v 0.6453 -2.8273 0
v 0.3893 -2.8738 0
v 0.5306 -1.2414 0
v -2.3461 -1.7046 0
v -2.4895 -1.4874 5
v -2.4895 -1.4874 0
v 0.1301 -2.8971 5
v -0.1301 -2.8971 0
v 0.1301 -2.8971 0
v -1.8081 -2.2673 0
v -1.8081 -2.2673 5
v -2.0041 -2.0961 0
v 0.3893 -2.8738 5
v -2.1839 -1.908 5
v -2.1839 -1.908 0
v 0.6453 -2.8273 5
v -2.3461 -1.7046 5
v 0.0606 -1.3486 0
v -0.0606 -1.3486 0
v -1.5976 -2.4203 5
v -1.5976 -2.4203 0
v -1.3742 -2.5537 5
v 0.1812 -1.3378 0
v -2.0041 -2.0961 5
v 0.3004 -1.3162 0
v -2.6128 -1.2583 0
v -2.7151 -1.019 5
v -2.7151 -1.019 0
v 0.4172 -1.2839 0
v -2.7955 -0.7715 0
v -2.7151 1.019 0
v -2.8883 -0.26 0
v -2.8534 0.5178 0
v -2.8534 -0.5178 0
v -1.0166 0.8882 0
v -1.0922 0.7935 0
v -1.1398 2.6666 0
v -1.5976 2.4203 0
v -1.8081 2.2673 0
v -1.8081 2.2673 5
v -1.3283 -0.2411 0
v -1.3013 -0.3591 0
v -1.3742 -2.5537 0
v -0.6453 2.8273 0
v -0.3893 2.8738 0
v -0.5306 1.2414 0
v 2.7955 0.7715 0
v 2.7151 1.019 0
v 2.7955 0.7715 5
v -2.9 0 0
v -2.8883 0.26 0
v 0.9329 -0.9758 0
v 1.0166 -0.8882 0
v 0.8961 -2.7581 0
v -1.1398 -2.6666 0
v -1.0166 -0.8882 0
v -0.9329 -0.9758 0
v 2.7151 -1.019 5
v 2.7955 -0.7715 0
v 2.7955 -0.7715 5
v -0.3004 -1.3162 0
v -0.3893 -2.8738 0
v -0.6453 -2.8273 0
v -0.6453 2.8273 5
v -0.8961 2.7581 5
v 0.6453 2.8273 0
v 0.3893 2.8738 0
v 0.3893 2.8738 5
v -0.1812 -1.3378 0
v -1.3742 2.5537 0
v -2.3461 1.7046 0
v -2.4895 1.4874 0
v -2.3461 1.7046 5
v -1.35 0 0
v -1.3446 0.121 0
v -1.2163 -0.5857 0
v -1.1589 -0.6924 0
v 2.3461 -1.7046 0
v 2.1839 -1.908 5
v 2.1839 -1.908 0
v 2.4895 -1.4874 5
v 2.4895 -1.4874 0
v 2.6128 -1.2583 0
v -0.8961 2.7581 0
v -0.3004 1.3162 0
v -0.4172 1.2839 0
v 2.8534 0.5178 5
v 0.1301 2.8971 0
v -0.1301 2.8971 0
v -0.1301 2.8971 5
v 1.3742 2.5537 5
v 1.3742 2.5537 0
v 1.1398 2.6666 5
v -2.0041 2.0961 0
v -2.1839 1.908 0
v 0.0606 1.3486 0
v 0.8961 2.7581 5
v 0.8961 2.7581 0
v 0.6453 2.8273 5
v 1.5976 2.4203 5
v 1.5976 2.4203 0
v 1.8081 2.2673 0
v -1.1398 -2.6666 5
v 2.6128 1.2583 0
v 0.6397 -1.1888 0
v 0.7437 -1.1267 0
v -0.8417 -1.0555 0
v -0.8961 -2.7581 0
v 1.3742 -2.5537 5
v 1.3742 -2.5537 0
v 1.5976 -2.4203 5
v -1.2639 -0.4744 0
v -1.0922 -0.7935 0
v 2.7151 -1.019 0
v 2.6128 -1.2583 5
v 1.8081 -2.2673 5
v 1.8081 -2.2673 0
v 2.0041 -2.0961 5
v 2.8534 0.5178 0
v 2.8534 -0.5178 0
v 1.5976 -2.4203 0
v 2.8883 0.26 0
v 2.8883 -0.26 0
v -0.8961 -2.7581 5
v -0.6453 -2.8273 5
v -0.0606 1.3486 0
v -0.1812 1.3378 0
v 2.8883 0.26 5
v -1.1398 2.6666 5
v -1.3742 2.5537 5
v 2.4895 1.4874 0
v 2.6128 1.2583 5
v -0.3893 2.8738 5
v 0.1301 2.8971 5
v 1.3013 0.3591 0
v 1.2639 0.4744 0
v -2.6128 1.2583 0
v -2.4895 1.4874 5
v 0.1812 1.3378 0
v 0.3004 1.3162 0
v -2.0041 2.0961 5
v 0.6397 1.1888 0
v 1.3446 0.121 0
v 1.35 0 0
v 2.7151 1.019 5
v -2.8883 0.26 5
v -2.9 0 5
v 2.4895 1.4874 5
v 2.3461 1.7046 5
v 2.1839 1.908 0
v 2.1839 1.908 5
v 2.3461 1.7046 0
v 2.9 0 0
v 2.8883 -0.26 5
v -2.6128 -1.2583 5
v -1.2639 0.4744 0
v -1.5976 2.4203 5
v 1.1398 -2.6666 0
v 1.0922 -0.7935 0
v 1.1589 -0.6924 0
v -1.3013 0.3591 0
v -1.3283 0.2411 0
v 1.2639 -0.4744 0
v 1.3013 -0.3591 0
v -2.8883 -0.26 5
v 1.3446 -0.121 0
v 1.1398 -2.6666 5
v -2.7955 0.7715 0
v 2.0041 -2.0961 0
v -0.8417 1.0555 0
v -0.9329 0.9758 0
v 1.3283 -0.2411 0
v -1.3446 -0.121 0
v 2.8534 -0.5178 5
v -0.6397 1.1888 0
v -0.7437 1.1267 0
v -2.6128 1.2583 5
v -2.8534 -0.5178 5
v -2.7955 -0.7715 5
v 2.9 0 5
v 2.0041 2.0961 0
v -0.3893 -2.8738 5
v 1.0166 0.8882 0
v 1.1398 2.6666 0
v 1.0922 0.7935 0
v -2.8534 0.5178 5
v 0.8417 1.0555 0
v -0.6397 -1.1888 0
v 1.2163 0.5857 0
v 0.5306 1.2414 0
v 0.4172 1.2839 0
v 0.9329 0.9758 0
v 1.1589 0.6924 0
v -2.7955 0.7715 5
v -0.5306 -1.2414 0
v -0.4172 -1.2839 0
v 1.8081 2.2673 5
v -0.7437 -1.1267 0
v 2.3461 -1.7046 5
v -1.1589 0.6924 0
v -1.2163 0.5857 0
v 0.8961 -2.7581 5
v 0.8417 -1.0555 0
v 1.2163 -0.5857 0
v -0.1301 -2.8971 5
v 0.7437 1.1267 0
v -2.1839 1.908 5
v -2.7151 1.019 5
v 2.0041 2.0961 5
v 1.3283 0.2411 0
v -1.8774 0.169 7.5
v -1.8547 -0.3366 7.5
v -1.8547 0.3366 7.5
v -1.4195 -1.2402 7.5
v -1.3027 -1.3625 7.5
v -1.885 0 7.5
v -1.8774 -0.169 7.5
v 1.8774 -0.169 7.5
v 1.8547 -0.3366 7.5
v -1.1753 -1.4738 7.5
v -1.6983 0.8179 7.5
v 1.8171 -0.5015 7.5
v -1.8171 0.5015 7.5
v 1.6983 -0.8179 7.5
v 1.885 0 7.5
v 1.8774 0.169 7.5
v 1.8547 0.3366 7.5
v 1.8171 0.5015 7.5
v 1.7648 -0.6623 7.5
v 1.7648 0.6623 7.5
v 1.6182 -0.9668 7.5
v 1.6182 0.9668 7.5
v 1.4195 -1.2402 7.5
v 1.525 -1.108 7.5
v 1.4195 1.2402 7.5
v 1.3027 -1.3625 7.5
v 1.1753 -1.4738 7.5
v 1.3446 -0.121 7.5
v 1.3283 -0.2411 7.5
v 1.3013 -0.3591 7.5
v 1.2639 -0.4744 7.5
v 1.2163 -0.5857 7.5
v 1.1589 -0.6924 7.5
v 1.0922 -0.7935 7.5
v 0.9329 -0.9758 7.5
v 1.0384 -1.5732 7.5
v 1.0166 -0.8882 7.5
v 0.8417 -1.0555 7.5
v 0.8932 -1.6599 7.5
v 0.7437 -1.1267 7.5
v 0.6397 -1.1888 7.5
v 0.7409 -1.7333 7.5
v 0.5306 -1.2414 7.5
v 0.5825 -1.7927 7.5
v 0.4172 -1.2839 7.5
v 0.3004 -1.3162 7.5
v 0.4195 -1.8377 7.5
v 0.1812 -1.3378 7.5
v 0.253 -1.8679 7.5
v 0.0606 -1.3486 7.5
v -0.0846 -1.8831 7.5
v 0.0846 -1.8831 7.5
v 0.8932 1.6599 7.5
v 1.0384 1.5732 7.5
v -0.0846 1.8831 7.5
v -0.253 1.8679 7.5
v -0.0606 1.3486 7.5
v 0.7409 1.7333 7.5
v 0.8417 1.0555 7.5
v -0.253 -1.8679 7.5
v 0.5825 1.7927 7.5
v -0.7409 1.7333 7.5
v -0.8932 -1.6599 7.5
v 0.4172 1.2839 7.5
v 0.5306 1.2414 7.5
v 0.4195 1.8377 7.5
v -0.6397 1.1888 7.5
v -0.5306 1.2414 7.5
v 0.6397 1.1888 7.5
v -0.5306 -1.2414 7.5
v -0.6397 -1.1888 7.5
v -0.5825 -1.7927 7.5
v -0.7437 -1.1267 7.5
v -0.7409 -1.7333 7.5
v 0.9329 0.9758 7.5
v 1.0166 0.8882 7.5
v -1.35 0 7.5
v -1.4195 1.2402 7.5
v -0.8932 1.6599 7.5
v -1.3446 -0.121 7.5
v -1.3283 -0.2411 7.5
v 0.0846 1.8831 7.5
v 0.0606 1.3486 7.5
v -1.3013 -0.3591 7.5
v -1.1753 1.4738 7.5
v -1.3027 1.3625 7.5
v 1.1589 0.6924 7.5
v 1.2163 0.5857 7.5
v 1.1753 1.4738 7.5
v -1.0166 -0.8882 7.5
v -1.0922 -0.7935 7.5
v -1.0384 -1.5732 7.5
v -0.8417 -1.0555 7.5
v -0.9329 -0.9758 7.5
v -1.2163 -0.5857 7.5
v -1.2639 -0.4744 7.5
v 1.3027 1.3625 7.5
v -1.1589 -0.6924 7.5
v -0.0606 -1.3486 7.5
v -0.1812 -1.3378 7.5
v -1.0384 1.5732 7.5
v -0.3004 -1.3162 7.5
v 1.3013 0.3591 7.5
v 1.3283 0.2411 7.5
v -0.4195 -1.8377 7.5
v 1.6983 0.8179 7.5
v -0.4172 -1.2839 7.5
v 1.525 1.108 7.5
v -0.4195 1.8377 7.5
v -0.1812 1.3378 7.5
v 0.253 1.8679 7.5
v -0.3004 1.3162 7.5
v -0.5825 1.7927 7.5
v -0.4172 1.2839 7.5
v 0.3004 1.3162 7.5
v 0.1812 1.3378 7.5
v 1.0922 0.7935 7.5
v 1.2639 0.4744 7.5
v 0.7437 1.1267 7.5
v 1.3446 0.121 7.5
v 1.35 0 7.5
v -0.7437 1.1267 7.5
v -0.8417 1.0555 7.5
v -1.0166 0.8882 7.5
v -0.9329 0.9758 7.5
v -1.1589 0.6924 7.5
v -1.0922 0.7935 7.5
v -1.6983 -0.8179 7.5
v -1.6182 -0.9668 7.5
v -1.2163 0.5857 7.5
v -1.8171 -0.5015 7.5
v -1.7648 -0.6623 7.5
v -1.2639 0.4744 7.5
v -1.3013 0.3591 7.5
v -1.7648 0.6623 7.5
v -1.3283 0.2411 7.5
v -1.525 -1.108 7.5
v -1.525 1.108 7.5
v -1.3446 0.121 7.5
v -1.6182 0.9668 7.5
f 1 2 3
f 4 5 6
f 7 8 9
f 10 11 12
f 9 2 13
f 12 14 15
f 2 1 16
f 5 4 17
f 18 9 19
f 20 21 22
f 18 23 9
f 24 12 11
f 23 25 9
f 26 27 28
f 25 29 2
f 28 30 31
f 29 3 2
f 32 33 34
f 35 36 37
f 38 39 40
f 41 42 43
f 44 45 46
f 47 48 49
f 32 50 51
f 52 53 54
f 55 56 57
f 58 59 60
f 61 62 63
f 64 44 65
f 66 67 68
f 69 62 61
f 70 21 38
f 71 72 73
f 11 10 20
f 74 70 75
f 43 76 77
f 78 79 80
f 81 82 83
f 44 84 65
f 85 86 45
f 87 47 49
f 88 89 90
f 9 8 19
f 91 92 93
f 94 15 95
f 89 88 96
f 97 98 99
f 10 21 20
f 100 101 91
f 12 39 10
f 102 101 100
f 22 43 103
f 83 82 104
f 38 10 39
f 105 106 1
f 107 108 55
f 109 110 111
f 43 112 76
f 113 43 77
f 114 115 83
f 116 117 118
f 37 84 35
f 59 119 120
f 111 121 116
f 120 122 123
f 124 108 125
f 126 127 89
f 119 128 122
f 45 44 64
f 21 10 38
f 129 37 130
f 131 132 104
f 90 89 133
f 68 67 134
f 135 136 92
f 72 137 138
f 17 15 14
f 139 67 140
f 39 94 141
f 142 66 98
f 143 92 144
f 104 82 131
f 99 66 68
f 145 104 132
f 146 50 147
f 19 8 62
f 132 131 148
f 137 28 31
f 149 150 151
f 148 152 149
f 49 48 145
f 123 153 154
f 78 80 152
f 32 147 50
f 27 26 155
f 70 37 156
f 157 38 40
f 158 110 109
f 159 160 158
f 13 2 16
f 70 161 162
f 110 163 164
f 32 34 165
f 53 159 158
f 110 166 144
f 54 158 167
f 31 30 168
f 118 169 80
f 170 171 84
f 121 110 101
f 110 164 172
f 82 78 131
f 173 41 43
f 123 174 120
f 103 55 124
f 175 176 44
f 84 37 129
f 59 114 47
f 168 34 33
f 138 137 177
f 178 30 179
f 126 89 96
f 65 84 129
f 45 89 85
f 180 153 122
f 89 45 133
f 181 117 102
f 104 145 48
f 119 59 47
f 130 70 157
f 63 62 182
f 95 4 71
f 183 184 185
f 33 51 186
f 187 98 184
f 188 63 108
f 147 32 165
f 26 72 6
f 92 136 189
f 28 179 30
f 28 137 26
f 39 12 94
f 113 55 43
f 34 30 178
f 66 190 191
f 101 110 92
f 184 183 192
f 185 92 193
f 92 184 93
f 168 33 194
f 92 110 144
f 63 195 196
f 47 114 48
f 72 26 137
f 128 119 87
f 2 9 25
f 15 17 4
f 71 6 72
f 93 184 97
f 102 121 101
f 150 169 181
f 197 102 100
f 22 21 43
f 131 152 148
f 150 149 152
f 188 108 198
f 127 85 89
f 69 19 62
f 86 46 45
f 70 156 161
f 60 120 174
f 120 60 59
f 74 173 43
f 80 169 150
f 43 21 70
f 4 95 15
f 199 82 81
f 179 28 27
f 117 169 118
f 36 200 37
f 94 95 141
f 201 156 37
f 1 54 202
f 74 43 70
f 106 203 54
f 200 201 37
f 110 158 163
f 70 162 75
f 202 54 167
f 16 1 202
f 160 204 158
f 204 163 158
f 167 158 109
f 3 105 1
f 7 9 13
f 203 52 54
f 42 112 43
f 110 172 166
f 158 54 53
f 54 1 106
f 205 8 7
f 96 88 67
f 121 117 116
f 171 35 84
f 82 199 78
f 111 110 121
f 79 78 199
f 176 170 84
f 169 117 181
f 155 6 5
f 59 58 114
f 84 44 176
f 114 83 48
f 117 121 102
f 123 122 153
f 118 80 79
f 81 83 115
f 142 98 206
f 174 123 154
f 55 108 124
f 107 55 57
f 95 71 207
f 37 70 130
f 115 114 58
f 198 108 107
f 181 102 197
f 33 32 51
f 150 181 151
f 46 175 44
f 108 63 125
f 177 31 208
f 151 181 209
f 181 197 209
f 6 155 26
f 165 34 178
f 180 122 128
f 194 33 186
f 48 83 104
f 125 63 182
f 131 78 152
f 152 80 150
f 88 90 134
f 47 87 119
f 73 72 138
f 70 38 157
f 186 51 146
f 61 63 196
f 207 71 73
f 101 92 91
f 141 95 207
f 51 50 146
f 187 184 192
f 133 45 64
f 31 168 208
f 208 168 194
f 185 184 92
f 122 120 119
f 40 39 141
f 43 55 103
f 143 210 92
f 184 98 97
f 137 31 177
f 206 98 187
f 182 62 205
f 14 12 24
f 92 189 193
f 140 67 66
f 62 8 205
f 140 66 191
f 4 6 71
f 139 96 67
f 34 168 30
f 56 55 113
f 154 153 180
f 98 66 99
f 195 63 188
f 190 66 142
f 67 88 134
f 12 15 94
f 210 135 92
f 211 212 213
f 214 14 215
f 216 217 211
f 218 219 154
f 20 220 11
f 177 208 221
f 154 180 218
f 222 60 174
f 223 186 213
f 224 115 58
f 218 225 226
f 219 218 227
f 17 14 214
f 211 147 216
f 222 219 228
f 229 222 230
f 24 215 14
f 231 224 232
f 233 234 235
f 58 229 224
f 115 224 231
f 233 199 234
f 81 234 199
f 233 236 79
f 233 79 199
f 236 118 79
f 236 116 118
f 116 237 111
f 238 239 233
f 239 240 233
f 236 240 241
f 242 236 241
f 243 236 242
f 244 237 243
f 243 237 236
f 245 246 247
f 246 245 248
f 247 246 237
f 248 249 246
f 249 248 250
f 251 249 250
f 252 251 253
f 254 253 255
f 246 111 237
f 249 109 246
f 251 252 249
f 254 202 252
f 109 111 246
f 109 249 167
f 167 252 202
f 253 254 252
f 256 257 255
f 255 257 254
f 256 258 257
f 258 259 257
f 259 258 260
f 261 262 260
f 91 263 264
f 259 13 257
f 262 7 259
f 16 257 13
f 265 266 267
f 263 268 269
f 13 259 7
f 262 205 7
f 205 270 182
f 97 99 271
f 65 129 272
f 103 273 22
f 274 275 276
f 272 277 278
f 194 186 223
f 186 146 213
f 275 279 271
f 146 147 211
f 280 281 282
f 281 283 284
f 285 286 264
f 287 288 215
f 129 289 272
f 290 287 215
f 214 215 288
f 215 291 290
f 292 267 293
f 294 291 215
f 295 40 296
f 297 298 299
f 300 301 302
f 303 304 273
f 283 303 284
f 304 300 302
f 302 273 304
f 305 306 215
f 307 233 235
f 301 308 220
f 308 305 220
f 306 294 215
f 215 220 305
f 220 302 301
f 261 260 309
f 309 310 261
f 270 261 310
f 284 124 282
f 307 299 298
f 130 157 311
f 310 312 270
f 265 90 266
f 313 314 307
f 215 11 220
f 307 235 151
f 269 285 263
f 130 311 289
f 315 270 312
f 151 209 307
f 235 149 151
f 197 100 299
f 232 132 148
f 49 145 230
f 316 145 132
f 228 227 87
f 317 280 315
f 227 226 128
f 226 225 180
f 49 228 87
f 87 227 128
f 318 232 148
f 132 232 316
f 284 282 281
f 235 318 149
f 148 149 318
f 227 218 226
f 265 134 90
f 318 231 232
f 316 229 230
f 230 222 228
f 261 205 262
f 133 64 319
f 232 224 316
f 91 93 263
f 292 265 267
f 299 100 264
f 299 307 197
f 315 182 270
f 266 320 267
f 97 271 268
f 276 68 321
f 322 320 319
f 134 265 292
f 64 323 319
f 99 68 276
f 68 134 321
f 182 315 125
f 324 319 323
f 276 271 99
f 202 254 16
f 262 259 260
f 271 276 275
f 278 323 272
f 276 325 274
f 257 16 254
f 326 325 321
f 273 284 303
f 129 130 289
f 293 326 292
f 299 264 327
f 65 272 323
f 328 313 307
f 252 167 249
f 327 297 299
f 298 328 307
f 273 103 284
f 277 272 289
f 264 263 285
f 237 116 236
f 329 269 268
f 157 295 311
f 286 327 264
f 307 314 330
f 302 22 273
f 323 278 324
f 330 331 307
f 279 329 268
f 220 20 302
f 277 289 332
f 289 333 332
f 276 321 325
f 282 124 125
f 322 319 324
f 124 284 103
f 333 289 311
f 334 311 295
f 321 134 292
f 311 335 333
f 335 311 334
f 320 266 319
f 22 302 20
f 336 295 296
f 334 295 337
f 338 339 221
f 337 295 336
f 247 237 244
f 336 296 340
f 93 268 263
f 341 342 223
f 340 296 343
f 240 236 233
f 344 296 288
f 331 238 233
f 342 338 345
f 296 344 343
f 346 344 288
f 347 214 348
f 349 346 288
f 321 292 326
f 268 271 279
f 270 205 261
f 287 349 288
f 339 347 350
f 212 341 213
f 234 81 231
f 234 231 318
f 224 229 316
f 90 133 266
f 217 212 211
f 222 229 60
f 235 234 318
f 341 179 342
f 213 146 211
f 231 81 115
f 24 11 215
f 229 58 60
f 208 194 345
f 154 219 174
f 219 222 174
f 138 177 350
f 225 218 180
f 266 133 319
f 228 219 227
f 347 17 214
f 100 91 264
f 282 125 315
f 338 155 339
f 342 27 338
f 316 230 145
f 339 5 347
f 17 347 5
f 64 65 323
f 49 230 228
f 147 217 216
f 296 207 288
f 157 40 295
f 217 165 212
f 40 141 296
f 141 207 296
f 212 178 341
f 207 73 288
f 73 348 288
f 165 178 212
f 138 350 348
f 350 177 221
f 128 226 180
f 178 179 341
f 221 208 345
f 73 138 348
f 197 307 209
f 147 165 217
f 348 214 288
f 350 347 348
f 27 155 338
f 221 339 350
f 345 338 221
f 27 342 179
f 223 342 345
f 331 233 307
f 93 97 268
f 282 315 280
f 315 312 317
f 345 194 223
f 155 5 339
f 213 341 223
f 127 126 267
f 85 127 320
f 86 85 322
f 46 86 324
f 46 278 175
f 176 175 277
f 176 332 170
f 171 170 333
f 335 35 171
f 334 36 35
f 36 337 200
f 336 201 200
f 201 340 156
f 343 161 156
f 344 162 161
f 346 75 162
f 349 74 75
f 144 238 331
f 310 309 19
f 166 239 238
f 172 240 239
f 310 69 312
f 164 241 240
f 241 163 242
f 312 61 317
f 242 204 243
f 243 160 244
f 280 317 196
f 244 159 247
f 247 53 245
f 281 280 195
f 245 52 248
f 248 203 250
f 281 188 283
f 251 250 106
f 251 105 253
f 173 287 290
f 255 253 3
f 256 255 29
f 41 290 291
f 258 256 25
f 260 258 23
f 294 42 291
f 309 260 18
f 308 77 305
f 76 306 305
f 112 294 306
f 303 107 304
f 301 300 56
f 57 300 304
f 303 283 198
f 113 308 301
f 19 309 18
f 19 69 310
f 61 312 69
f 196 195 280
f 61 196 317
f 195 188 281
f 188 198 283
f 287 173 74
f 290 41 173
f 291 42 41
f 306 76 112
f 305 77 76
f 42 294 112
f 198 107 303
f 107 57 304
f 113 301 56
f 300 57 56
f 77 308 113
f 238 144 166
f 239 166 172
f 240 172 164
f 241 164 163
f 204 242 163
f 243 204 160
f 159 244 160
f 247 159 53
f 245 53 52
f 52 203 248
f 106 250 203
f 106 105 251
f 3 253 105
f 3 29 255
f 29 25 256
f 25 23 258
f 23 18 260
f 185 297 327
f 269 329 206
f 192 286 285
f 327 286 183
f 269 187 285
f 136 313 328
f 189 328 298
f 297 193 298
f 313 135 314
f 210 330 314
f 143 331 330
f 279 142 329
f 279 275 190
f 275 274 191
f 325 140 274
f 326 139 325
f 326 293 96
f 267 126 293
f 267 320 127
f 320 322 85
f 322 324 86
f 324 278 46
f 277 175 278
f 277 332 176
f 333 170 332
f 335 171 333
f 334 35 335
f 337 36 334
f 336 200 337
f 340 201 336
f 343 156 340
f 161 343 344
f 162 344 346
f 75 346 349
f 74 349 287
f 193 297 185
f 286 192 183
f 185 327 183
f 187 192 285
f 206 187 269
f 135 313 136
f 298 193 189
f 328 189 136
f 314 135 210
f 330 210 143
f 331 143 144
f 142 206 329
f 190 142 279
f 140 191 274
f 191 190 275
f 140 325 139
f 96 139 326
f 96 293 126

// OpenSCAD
/* [Ferrule Parameters] (for TPU print or reference to P-343) */
tubing_od = 3.0;
ferrule_id = tubing_od - 0.3; // Interference grip
ferrule_od = 5.8;           // Slightly larger to match typical ETFE
ferrule_length = 5.0;
ferrule_taper_height = 2.5;

ferrule();

module ferrule() {
    difference() {
        union() {
            cylinder(h=ferrule_length, d=ferrule_od, $fn=70);
            translate([0,0,ferrule_length])
                cylinder(h=ferrule_taper_height, d1=ferrule_od, d2=ferrule_od*0.65, $fn=70);
        }
        cylinder(h=ferrule_length + ferrule_taper_height + 2, d=ferrule_id, $fn=70);
    }
}
